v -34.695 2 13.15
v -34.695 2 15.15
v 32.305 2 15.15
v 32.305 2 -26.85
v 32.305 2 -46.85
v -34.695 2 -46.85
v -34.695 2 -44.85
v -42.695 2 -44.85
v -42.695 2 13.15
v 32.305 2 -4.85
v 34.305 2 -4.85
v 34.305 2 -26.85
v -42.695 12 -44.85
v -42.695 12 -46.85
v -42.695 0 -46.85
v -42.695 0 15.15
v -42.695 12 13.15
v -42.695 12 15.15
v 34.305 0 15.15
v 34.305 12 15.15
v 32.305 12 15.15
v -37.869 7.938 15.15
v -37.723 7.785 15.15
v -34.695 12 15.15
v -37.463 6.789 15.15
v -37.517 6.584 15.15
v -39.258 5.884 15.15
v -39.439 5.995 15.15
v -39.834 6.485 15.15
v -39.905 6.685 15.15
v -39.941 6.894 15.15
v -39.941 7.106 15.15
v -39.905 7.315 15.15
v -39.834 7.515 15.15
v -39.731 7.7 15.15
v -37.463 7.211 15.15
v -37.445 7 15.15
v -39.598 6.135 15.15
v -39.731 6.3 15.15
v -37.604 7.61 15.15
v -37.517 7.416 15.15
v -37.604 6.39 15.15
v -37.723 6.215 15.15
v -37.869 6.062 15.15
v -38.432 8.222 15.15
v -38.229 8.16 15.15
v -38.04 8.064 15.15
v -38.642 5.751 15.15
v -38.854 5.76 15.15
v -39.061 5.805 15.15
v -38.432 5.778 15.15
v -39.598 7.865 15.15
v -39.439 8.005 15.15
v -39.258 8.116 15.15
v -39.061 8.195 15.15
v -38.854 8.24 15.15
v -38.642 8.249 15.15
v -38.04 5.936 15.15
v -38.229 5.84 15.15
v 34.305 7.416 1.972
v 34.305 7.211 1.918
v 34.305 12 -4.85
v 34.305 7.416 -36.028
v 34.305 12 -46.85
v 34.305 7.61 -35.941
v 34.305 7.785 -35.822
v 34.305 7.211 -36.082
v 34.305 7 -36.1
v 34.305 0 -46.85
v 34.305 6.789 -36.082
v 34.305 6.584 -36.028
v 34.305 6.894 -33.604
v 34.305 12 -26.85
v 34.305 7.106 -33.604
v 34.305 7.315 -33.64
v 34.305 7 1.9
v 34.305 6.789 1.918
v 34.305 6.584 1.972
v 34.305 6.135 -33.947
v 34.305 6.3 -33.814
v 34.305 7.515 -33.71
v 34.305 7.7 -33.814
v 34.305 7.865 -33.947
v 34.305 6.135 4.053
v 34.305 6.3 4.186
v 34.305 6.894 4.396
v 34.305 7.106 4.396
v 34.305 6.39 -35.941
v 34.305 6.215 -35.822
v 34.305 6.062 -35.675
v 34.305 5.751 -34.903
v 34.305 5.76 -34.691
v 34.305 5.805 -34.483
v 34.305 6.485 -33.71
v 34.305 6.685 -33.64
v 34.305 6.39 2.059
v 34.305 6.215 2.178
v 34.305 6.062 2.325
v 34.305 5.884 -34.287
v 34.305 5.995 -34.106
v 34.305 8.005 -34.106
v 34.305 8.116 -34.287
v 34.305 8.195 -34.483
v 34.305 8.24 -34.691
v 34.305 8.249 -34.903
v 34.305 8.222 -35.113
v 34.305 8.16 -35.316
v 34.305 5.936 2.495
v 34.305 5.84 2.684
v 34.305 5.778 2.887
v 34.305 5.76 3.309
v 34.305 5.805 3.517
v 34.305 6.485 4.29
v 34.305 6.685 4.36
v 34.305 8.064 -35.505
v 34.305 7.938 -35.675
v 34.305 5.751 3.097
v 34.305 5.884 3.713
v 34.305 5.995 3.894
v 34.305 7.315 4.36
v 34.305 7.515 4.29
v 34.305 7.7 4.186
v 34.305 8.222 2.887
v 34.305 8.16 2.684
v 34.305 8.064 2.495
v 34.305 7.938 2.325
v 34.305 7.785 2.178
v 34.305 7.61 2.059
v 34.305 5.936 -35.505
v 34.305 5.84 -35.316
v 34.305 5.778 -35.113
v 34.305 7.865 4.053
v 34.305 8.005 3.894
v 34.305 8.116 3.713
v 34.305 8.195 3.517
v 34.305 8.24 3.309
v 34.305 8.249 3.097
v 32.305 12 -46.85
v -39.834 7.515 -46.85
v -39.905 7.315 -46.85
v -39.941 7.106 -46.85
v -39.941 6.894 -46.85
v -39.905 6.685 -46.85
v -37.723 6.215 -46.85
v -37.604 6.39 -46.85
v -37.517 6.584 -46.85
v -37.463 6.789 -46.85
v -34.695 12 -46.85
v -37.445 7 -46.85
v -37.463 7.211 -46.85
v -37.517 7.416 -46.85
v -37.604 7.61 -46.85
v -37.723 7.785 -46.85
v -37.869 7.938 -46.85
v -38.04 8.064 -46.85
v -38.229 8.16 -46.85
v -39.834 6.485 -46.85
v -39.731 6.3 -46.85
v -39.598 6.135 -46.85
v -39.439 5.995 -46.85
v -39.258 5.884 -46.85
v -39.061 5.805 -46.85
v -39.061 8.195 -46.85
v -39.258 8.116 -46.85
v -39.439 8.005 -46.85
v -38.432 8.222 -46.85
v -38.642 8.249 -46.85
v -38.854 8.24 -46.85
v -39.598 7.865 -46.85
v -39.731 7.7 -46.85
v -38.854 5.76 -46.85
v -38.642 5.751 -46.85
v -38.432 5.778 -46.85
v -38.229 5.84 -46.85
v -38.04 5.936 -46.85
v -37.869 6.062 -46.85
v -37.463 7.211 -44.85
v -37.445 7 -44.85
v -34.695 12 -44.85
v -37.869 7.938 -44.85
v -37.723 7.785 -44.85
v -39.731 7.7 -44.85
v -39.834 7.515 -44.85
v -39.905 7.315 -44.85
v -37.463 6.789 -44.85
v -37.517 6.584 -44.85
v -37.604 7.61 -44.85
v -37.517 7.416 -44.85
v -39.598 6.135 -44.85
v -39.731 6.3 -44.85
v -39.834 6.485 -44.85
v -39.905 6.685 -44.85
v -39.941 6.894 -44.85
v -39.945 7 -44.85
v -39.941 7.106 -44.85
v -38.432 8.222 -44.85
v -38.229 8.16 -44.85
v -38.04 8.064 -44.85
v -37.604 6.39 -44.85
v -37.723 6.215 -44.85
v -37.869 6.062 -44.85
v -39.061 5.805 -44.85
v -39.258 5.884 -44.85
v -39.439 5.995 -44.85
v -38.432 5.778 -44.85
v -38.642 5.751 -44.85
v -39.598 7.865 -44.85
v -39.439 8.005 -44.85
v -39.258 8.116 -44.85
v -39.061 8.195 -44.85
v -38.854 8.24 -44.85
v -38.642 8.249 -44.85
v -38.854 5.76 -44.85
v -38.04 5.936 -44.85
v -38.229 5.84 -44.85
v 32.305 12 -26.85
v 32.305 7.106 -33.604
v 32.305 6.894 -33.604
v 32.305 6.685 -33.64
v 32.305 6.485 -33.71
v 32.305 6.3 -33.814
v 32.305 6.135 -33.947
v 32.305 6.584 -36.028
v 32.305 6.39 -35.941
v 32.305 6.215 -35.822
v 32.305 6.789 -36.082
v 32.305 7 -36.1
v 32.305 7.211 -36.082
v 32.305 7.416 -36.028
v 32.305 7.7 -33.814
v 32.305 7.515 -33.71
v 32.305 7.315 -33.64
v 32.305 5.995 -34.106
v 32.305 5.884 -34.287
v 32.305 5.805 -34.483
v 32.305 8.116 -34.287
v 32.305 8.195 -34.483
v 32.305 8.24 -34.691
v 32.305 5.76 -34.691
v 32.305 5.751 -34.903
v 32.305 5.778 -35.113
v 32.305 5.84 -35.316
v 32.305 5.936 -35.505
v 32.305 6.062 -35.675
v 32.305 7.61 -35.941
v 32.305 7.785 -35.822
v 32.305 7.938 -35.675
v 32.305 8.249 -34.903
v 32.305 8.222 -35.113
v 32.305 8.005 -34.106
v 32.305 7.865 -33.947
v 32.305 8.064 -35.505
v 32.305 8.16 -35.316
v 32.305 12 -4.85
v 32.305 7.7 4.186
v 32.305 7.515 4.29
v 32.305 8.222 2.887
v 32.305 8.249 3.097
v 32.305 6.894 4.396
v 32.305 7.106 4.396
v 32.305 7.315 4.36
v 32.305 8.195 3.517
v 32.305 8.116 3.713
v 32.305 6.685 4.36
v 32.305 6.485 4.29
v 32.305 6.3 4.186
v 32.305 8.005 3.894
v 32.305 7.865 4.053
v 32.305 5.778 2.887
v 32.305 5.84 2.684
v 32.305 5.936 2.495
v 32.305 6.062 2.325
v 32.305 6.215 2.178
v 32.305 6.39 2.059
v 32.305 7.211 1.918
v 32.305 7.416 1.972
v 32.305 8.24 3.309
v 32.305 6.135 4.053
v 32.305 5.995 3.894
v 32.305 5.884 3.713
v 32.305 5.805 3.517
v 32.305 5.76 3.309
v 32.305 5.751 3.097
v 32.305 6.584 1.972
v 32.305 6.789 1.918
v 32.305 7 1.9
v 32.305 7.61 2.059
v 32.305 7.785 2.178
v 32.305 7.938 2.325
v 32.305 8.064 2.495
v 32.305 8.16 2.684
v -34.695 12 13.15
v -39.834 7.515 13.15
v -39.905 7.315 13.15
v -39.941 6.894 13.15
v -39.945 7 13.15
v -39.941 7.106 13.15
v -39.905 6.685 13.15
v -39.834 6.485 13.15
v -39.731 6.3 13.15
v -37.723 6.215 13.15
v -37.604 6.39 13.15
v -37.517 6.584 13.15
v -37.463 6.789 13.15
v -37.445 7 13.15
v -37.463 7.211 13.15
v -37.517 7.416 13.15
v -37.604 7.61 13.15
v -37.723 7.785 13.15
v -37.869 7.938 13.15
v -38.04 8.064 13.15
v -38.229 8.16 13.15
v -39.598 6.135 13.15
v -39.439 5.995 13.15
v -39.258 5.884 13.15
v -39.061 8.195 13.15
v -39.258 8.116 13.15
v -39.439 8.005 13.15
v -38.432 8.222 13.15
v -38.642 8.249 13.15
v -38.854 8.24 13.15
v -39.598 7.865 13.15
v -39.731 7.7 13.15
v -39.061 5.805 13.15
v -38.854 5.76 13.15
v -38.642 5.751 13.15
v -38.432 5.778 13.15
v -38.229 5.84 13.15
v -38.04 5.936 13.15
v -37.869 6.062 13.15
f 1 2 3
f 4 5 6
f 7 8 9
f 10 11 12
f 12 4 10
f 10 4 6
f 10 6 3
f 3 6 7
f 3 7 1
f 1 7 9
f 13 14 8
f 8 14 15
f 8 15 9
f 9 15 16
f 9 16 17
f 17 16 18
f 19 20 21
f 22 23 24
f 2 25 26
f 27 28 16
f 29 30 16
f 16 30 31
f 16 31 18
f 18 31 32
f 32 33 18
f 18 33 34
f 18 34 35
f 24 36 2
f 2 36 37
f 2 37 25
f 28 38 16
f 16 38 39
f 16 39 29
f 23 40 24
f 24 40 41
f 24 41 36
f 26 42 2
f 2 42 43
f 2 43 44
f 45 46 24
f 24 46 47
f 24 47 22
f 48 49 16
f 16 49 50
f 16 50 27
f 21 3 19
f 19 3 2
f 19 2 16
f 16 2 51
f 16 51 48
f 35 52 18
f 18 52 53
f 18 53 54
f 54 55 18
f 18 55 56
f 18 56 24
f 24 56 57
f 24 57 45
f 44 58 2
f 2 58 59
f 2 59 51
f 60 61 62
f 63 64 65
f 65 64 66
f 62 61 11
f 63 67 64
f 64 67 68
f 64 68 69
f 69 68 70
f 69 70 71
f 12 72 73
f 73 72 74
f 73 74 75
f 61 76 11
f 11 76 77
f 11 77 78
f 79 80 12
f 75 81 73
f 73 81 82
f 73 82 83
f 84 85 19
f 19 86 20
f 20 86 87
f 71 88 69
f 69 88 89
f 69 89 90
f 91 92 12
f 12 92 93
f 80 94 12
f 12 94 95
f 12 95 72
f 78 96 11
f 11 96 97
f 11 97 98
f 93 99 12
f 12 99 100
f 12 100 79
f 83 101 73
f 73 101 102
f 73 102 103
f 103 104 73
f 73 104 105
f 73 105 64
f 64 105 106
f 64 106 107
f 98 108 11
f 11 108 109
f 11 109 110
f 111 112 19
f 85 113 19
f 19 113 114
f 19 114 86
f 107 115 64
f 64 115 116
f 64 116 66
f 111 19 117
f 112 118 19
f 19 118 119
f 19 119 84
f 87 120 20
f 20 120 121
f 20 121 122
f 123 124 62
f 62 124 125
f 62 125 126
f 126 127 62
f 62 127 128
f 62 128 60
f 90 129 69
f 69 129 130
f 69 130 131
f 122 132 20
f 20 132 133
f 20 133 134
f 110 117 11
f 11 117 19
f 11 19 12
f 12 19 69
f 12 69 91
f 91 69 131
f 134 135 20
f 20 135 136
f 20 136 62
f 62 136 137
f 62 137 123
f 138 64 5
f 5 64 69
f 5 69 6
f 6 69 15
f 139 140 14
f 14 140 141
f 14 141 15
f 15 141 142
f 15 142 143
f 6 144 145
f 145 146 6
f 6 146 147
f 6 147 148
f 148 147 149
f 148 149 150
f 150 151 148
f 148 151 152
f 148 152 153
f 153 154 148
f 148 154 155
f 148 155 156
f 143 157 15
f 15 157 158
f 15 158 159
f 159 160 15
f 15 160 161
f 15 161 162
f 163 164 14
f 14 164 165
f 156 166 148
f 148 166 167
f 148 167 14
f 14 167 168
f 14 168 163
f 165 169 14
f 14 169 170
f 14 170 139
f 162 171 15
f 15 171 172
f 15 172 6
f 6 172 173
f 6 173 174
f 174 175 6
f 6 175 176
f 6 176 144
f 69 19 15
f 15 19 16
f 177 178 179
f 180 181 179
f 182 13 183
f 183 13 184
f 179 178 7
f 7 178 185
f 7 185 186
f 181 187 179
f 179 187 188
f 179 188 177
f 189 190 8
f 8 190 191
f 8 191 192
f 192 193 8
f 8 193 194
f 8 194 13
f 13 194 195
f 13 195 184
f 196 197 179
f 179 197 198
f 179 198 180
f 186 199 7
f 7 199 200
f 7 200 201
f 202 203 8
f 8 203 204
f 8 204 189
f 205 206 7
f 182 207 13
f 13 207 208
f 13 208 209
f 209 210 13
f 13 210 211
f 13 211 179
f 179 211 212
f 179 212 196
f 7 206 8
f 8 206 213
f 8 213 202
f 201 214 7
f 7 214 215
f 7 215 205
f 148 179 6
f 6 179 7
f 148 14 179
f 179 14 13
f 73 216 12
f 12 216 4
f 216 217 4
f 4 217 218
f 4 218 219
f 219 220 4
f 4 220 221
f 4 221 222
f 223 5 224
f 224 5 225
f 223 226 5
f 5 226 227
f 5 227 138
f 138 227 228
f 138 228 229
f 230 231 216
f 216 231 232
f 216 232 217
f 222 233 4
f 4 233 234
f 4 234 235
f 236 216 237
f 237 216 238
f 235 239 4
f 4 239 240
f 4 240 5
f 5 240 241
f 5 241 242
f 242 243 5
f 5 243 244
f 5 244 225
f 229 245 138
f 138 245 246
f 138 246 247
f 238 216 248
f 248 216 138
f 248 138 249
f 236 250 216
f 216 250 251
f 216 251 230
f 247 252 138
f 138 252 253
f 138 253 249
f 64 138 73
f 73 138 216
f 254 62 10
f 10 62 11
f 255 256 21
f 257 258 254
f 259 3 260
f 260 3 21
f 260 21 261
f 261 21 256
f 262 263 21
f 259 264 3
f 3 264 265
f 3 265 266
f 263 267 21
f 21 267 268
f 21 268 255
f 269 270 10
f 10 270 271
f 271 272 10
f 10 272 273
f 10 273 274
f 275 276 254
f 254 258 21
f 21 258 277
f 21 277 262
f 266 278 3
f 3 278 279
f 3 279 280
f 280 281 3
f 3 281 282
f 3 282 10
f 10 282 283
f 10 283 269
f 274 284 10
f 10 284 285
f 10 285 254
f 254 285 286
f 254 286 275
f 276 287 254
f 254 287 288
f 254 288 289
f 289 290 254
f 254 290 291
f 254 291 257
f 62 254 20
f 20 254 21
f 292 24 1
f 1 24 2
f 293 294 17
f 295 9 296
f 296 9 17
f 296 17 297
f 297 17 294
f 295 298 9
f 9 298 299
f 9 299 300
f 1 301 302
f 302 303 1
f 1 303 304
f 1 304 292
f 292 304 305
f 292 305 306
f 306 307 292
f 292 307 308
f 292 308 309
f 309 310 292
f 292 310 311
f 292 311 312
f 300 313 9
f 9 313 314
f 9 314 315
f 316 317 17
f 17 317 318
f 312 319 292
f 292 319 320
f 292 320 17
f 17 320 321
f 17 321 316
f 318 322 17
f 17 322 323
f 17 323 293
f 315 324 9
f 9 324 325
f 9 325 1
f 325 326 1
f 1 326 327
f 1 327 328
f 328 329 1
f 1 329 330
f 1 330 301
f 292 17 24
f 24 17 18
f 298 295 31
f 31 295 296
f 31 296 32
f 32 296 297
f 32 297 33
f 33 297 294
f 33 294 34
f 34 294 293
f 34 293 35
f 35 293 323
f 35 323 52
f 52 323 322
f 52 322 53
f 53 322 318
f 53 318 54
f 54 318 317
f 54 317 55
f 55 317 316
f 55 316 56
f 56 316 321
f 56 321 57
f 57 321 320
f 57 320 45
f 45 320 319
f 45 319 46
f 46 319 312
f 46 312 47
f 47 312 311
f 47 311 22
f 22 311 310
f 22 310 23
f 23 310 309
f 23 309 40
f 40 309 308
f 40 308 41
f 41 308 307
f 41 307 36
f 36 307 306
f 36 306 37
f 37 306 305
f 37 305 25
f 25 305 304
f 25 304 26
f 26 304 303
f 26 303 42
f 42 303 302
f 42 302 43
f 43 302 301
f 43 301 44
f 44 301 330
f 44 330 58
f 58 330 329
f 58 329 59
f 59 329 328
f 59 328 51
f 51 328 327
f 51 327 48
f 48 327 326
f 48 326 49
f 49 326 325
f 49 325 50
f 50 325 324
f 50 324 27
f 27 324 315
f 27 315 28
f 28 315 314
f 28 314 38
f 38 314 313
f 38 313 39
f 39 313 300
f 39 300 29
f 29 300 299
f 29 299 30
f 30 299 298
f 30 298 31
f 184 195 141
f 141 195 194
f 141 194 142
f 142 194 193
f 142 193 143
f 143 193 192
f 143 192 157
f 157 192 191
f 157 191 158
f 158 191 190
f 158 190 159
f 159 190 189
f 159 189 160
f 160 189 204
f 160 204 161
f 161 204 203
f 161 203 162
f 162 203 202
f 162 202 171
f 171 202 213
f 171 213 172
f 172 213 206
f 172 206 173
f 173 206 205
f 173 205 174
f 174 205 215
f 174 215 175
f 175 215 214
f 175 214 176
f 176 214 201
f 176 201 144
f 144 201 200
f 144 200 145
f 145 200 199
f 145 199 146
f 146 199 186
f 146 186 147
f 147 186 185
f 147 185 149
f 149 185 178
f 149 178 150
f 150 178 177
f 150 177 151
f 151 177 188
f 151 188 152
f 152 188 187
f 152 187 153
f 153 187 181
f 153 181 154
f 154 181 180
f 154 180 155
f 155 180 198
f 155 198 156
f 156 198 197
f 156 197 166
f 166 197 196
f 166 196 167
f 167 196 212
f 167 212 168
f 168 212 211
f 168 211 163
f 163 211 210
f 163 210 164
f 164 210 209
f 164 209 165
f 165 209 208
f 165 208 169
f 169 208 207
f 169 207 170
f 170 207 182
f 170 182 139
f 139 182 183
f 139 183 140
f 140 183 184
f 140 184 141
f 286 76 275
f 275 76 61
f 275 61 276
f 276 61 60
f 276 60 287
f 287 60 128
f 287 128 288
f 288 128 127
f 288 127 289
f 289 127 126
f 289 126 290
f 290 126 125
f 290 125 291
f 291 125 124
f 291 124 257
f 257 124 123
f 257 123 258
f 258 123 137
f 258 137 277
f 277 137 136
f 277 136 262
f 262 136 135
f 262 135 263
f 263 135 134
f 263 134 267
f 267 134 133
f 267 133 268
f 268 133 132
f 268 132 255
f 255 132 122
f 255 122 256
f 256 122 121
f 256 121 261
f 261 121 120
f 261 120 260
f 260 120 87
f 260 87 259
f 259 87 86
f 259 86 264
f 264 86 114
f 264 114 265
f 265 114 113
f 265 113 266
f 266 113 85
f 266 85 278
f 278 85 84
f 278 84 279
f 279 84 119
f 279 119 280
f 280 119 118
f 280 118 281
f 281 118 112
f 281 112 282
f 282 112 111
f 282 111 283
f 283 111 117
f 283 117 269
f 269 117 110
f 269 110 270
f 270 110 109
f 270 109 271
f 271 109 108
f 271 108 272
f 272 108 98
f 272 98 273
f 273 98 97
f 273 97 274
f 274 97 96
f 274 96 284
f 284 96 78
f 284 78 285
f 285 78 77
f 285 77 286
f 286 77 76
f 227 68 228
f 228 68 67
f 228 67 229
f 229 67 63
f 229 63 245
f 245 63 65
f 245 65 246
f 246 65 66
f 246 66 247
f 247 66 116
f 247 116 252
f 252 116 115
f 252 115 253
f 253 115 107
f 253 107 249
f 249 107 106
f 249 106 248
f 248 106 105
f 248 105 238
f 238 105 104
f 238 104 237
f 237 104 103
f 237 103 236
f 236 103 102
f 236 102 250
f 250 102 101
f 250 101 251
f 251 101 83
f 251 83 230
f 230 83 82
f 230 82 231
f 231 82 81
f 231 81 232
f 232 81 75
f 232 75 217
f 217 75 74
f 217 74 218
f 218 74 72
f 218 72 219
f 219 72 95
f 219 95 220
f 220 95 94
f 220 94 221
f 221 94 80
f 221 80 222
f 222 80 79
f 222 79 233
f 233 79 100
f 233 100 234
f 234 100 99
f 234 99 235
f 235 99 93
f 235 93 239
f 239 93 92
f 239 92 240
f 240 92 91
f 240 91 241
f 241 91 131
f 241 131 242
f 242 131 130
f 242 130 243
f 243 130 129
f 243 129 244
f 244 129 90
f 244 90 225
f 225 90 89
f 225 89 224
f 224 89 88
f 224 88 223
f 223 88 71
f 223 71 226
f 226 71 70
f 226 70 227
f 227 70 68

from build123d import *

# Parameters (mm, degrees)
SKETCH2_W           = 77
SKETCH2_H           = 62
BOSS_EXTRUDE1_DEPTH = 2
SKETCH3_W           = 8
SKETCH3_H           = 2
SKETCH3_W_2         = 2
SKETCH3_H_2         = 20
BOSS_EXTRUDE2_DEPTH = 10
SKETCH4_R           = 1.25
CUT_EXTRUDE1_DEPTH  = 63
CUT_EXTRUDE2_REACH  = 79
SKETCH5_R           = 1.25


with BuildPart() as part:
    # Sketch2 → Boss-Extrude1 (new body)
    with BuildSketch(Plane(origin=(0, 0, 0), x_dir=(1, 0, 0), z_dir=(0, 1, 0))):
        with Locations((-4.195246224, 15.849517589)):
            Rectangle(SKETCH2_W, SKETCH2_H)
    extrude(amount=BOSS_EXTRUDE1_DEPTH)

    # Sketch3 → Boss-Extrude2 (add)
    with BuildSketch(Plane(origin=(0, 2, 0), x_dir=(1, 0, 0), z_dir=(0, 1, 0))):
        with Locations((-38.695246224, -14.150482411)):
            Rectangle(SKETCH3_W, SKETCH3_H)
        with Locations((-38.695246224, 45.849517589)):
            Rectangle(SKETCH3_W, SKETCH3_H)
        with Locations((33.304753776, 36.849517589)):
            Rectangle(SKETCH3_W_2, SKETCH3_H_2)
        with Locations((33.304753776, -5.150482411)):
            Rectangle(SKETCH3_W_2, SKETCH3_H_2)
    extrude(amount=BOSS_EXTRUDE2_DEPTH)

    # Sketch4 → Cut-Extrude1 (cut, through all)
    with BuildSketch(Plane.XY.offset(15.150482411)):
        with Locations((-38.695246224, 7)):
            Circle(SKETCH4_R)
    extrude(amount=-CUT_EXTRUDE1_DEPTH, mode=Mode.SUBTRACT)

    # Sketch5 → Cut-Extrude2 (cut, up to next)
    with BuildSketch(Plane(origin=(34.304753776, 0, 0), x_dir=(0, 0, -1), z_dir=(1, 0, 0)), mode=Mode.PRIVATE) as cut_extrude2_sk1:
        with Locations((-3.150482411, 7)):
            Circle(SKETCH5_R)
    cut_extrude2_tool1 = extrude(cut_extrude2_sk1.sketch, amount=-CUT_EXTRUDE2_REACH, mode=Mode.PRIVATE) & part.part
    add(cut_extrude2_tool1.solids().sort_by_distance((34.304754, 7, 3.150482))[0], mode=Mode.SUBTRACT)
    # Sketch5 → Cut-Extrude2 (cut, up to next)
    with BuildSketch(Plane(origin=(34.304753776, 0, 0), x_dir=(0, 0, -1), z_dir=(1, 0, 0)), mode=Mode.PRIVATE) as cut_extrude2_sk2:
        with Locations((34.849517589, 7)):
            Circle(SKETCH5_R)
    cut_extrude2_tool2 = extrude(cut_extrude2_sk2.sketch, amount=-CUT_EXTRUDE2_REACH, mode=Mode.PRIVATE) & part.part
    add(cut_extrude2_tool2.solids().sort_by_distance((34.304754, 7, -34.849518))[0], mode=Mode.SUBTRACT)


solid = part.part
